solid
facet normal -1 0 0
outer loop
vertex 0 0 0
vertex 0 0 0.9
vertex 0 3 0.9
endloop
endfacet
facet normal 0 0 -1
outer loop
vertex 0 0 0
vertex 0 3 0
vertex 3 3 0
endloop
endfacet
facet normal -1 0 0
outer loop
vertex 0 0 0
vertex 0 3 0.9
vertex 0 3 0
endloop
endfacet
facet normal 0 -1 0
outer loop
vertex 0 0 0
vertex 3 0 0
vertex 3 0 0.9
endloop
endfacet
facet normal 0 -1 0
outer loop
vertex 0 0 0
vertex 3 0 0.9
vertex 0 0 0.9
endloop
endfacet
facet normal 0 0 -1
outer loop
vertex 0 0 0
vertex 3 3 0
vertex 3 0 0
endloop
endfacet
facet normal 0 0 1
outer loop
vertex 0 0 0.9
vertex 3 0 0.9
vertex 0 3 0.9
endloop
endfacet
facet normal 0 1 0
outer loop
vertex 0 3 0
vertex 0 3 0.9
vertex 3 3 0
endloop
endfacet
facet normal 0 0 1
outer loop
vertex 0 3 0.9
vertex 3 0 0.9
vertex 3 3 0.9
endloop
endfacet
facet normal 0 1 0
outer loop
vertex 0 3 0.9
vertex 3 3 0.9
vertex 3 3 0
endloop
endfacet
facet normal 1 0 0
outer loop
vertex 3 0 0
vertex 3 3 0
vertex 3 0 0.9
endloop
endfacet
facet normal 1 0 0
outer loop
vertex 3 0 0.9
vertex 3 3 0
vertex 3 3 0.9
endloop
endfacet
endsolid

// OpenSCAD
/* Warning, this is a very basic generator with a lot of approximation 
input data : [VQFN, 4MX, 3x3x0.9mm, 16, , A, C04-00508A]
generated by com.zoubworld.electronics.cad.model3d.Basic
Date : Sun Feb 15 10:50:48 CET 2026
*/

//body
color("black")
translate([0,0,0])
cube([3.0,3.0,0.9], center=false);
